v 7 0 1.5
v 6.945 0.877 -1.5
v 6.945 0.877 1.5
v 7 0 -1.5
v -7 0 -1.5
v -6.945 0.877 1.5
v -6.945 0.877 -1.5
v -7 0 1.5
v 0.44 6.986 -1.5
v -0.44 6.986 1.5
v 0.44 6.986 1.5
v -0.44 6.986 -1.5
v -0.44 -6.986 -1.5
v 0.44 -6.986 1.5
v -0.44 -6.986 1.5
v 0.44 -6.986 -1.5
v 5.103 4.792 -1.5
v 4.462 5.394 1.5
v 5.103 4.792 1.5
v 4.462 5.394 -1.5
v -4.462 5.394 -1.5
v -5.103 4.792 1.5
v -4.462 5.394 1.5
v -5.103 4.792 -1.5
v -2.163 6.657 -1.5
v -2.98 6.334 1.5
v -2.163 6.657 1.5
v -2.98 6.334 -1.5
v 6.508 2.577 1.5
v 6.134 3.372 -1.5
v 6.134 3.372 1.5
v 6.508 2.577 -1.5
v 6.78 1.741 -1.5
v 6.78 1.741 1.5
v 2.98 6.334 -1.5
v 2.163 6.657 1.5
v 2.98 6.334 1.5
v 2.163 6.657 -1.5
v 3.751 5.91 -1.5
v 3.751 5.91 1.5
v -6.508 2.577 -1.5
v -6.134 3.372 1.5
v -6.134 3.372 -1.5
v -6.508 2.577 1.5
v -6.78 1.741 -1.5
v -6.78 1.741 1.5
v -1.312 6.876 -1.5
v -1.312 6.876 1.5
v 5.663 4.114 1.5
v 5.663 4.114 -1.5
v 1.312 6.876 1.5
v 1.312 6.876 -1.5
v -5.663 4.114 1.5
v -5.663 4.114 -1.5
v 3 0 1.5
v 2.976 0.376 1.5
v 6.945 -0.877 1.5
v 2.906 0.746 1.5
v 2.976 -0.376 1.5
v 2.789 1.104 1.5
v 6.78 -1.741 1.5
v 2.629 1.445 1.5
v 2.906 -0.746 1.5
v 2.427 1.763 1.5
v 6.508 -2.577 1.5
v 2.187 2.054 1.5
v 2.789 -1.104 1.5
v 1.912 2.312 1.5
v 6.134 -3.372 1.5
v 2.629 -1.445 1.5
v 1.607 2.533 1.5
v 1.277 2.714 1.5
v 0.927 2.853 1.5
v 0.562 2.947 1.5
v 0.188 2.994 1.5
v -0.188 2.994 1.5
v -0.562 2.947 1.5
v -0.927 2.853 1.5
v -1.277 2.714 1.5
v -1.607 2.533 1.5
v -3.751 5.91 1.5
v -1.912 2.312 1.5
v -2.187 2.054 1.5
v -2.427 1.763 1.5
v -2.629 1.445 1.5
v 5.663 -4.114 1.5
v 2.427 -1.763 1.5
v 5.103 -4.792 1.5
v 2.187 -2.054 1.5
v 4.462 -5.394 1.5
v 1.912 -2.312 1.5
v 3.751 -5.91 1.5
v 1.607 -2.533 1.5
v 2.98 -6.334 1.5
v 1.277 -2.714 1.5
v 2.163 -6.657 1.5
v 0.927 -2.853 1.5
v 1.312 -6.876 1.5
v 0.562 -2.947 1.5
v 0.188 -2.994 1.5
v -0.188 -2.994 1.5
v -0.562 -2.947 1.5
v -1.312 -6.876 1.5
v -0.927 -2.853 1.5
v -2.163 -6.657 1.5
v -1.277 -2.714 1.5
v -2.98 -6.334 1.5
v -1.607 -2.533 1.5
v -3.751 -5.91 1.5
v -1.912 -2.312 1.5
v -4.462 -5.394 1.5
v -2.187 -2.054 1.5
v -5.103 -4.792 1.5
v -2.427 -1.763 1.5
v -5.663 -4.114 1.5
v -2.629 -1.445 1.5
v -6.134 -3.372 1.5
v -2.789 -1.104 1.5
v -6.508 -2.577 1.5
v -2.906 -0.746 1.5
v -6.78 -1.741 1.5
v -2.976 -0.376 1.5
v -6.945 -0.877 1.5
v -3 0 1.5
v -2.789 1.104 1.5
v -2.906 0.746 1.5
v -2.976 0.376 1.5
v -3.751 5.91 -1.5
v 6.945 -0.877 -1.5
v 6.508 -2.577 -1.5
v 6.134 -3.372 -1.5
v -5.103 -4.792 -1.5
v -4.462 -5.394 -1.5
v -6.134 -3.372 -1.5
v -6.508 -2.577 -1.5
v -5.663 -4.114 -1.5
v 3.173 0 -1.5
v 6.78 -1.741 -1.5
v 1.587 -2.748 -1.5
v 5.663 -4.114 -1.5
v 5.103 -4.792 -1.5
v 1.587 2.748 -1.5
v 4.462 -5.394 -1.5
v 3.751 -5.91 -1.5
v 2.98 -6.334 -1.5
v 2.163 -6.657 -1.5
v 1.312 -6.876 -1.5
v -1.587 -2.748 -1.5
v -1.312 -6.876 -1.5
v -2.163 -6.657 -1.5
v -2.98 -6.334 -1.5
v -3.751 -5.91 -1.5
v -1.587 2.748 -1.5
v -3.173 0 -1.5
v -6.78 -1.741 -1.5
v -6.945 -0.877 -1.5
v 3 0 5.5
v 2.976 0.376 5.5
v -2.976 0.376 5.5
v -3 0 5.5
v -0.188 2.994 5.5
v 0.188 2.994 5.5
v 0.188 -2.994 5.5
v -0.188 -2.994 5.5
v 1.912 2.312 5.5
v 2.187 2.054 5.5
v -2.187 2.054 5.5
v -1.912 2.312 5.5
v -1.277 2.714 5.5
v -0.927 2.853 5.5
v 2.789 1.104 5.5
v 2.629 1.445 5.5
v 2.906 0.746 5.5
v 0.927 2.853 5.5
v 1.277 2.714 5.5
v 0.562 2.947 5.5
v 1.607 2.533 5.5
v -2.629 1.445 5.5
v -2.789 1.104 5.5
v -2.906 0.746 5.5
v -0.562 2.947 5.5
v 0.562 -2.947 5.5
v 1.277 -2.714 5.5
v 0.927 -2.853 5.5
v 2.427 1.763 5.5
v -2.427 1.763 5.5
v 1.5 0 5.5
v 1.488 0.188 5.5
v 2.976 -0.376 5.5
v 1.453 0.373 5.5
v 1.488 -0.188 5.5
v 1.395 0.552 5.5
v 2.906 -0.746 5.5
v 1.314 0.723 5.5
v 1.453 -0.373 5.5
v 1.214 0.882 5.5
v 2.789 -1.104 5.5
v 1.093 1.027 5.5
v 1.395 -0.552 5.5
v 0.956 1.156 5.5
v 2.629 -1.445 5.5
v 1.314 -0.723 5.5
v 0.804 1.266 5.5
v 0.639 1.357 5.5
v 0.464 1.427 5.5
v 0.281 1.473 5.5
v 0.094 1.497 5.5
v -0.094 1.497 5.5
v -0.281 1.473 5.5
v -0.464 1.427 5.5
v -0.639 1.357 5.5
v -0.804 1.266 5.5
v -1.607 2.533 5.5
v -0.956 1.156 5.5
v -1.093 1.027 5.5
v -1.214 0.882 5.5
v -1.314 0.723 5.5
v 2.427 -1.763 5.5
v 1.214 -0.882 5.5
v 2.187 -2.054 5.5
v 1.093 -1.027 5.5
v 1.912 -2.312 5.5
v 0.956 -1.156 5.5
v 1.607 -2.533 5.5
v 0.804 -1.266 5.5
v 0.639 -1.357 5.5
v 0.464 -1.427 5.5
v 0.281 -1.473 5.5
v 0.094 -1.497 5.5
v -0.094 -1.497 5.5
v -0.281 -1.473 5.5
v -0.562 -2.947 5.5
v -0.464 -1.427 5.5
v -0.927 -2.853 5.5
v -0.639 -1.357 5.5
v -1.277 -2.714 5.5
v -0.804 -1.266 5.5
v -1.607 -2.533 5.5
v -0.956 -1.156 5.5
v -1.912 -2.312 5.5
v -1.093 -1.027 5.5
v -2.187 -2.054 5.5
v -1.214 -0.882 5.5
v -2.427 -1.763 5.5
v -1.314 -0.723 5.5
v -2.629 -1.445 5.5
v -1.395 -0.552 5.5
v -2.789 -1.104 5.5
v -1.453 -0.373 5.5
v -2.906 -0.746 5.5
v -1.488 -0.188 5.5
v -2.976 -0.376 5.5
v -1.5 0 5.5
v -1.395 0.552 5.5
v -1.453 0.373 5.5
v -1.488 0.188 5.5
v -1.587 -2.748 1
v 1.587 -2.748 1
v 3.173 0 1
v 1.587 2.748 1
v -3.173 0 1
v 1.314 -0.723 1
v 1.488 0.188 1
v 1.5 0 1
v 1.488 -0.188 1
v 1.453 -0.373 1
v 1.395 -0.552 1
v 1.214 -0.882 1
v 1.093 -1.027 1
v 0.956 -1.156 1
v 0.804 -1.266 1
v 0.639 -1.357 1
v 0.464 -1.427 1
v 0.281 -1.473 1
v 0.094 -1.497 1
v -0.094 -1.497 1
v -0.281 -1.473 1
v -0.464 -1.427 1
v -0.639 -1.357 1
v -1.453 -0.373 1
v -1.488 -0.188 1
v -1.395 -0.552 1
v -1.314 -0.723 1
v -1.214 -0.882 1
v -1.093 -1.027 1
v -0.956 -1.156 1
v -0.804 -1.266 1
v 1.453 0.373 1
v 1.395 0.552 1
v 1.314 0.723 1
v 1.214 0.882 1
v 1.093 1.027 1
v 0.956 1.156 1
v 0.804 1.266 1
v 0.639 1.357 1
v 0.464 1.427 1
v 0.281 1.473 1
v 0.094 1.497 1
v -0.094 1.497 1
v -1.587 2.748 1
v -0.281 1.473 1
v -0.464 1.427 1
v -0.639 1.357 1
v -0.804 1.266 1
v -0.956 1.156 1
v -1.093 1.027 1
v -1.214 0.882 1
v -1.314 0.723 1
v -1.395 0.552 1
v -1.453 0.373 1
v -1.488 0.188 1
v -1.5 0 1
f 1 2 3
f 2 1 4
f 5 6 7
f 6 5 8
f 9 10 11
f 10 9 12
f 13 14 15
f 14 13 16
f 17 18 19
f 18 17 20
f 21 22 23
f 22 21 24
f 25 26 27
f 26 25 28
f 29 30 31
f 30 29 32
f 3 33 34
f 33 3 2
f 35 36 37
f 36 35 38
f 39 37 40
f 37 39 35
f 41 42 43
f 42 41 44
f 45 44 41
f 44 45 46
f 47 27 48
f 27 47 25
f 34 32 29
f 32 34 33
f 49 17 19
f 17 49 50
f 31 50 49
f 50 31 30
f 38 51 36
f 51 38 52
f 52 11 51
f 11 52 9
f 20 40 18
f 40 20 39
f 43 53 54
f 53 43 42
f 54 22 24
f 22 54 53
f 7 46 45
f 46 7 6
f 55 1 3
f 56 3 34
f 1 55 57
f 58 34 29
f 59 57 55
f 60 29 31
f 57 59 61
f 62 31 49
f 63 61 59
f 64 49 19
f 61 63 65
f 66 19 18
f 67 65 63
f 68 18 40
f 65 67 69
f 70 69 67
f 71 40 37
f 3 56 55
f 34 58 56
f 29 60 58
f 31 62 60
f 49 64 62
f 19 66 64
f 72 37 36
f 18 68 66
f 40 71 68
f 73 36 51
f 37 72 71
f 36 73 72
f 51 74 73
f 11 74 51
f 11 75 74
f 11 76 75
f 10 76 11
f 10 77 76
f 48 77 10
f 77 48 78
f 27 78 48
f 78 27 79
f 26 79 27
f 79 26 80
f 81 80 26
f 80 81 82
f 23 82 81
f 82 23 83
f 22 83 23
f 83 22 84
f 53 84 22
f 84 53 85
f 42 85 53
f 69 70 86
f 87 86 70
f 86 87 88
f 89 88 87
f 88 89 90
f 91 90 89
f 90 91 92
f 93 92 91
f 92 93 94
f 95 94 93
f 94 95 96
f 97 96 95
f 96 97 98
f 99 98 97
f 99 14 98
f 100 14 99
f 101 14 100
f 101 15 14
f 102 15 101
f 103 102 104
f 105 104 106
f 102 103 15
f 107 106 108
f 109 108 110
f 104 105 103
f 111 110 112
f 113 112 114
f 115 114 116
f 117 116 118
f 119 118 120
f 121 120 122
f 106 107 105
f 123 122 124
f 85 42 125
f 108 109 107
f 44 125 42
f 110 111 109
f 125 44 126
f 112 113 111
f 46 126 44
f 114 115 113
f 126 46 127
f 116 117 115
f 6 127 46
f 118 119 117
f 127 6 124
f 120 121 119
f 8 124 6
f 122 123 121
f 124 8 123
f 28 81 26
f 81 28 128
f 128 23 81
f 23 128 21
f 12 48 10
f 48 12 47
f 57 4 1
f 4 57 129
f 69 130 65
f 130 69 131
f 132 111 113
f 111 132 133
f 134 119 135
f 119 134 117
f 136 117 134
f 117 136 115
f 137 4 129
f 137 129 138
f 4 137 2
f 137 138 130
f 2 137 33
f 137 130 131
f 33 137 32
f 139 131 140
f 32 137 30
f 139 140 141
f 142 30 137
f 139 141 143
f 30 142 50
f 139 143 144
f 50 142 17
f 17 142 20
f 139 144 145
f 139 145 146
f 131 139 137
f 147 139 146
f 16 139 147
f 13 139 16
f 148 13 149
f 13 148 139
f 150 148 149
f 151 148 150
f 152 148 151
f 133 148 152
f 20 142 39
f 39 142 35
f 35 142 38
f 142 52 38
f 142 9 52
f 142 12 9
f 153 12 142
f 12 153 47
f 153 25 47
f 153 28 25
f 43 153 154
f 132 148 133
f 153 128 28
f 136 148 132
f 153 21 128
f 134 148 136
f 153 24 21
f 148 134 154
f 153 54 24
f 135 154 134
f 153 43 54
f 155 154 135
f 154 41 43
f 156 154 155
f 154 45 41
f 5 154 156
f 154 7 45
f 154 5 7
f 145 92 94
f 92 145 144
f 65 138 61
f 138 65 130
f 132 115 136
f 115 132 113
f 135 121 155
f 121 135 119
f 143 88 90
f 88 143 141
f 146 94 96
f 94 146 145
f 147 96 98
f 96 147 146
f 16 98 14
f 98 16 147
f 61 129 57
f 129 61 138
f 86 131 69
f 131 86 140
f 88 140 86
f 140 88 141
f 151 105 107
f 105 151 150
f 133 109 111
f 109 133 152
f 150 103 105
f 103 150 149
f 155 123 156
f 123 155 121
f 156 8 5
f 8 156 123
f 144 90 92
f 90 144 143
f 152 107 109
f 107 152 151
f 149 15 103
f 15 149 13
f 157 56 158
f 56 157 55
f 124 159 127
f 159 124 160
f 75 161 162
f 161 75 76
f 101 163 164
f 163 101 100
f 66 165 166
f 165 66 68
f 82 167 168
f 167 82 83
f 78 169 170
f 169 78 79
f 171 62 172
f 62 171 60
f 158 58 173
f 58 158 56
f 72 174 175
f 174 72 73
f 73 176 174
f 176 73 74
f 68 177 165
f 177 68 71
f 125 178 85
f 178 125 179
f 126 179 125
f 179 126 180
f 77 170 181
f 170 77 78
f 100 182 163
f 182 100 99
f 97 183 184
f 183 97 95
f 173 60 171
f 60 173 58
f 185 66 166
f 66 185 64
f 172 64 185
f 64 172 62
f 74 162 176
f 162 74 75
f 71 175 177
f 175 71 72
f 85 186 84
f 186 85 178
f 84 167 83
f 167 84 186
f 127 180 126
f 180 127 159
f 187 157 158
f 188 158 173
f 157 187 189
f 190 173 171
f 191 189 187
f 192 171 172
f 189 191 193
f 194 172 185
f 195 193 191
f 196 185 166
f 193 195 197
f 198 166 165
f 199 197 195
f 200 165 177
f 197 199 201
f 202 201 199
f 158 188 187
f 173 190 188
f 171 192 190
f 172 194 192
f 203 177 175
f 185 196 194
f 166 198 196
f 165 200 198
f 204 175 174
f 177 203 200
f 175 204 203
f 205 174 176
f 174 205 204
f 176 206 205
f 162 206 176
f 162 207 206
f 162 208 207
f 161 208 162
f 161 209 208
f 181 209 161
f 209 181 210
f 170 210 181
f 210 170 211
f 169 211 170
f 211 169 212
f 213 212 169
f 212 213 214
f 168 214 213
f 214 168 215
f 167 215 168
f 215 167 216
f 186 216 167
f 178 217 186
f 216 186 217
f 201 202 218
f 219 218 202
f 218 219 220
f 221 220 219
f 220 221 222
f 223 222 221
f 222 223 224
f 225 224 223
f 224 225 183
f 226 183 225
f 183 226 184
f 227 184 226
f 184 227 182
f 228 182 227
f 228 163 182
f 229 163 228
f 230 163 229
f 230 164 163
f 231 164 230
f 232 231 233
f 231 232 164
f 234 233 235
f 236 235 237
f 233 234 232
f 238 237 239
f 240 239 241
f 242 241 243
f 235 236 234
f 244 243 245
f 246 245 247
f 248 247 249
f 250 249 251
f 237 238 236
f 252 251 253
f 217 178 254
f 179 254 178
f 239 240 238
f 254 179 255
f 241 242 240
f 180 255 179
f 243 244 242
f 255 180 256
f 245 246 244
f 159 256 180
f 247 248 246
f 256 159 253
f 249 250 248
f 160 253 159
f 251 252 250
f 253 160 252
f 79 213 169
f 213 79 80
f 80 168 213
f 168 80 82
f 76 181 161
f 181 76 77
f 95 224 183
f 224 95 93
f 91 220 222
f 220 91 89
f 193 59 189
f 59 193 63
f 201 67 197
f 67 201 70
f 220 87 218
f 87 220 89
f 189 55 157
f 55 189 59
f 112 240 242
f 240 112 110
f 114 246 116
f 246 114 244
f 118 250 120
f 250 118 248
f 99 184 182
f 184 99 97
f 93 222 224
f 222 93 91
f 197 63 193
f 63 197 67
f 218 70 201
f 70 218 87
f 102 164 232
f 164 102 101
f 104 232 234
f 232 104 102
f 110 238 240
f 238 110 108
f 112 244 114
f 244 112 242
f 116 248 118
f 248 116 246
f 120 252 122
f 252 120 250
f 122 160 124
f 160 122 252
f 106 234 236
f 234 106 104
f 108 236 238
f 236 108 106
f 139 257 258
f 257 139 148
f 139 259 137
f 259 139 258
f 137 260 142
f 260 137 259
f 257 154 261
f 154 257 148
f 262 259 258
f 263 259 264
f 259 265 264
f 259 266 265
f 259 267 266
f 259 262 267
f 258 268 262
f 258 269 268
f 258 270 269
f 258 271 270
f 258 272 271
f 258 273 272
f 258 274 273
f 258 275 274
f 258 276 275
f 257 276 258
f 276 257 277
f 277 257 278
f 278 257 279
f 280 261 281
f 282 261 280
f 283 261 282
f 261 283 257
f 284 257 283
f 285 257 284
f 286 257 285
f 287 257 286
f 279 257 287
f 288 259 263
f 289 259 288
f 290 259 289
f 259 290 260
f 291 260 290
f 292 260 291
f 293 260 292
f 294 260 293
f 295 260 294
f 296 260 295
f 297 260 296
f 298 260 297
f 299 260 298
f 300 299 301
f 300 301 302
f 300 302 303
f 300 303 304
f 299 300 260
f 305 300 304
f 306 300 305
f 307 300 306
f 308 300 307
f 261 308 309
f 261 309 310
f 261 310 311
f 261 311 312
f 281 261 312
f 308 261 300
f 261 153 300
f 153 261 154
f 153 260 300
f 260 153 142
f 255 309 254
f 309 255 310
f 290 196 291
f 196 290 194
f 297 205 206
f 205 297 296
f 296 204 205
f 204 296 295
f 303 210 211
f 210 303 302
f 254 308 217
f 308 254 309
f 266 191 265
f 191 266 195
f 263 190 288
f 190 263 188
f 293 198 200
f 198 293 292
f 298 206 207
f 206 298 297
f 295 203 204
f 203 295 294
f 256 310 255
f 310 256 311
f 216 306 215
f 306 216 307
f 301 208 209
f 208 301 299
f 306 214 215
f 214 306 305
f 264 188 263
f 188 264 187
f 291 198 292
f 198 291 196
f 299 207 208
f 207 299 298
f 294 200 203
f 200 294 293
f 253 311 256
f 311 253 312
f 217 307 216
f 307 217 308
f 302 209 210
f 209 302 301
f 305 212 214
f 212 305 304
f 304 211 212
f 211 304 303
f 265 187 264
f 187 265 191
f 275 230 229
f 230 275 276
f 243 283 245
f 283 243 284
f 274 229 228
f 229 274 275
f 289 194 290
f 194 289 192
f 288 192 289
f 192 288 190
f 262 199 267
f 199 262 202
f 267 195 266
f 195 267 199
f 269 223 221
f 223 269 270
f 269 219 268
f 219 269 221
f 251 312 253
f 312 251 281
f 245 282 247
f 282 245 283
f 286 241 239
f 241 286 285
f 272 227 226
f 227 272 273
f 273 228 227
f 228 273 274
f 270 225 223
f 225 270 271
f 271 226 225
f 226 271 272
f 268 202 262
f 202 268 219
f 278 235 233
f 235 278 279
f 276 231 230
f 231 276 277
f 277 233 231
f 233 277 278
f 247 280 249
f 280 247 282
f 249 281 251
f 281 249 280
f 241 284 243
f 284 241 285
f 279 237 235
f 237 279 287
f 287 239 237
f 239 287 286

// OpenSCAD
$fn = 50;


difference() {
	union() {
		translate(v = [0, 0, -1.5000000000]) {
			cylinder(h = 3, r = 7.0000000000);
		}
		translate(v = [0, 0, -1.5000000000]) {
			cylinder(h = 7, r = 3.0000000000);
		}
	}
	union() {
		translate(v = [0, 0, -1.5000000000]) {
			rotate(a = [0, 0, 0]) {
				difference() {
					union() {
						linear_extrude(height = 2.5000000000) {
							polygon(points = [[3.1735000000, 0.0000000000], [1.5867500000, 2.7483316189], [-1.5867500000, 2.7483316189], [-3.1735000000, 0.0000000000], [-1.5867500000, -2.7483316189], [1.5867500000, -2.7483316189]]);
						}
					}
					union();
				}
			}
		}
		translate(v = [0, 0, -50.0000000000]) {
			cylinder(h = 100, r = 1.5000000000);
		}
	}
}
